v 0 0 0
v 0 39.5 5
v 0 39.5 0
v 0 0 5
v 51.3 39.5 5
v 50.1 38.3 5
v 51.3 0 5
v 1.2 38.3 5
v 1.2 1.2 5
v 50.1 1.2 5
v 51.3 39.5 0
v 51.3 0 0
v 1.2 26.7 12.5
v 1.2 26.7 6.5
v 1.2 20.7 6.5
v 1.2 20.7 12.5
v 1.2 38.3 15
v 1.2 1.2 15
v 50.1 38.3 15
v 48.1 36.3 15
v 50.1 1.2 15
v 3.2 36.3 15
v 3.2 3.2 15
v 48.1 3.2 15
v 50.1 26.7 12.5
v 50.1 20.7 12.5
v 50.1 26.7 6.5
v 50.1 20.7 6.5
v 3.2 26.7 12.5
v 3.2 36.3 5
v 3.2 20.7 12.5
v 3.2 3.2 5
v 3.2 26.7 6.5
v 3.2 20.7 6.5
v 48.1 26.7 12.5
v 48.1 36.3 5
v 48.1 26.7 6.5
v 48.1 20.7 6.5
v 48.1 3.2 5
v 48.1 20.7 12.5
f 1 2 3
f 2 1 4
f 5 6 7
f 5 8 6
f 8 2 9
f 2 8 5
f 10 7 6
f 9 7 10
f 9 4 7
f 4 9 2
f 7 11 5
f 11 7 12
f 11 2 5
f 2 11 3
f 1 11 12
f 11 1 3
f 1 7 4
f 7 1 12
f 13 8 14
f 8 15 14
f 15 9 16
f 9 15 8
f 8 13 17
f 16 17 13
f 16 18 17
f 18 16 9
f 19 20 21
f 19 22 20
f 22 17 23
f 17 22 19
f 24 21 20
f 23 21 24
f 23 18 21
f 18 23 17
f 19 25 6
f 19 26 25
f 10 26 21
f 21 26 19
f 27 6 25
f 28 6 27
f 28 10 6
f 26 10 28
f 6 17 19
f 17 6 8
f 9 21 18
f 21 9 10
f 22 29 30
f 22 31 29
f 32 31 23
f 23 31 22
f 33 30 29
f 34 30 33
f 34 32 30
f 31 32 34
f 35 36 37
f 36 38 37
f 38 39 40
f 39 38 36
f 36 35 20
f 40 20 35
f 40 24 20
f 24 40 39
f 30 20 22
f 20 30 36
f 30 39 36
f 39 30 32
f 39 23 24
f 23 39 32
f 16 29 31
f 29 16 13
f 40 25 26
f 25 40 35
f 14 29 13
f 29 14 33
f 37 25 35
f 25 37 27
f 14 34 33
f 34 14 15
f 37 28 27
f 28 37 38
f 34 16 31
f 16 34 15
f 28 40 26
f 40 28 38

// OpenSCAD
width = 51.3;
height = 39.5;
thickness = 5;
wall = 2;
offset = 1.2;
hole = 6;
hole_y = 19.5;
hole_z = 6.5;

difference()
{
    union()
    {
        cube([width, height, thickness]);
        translate([offset,offset,thickness])
            cube([width-2*offset, height-2*offset, 2*thickness]);
    }
    translate([offset+wall, offset+wall, thickness])
        cube([width-2*(offset+wall), height-2*(offset+wall), 3*thickness]);
    translate([offset, hole_y+offset, hole_z])
        cube([width, hole, hole]);
}
